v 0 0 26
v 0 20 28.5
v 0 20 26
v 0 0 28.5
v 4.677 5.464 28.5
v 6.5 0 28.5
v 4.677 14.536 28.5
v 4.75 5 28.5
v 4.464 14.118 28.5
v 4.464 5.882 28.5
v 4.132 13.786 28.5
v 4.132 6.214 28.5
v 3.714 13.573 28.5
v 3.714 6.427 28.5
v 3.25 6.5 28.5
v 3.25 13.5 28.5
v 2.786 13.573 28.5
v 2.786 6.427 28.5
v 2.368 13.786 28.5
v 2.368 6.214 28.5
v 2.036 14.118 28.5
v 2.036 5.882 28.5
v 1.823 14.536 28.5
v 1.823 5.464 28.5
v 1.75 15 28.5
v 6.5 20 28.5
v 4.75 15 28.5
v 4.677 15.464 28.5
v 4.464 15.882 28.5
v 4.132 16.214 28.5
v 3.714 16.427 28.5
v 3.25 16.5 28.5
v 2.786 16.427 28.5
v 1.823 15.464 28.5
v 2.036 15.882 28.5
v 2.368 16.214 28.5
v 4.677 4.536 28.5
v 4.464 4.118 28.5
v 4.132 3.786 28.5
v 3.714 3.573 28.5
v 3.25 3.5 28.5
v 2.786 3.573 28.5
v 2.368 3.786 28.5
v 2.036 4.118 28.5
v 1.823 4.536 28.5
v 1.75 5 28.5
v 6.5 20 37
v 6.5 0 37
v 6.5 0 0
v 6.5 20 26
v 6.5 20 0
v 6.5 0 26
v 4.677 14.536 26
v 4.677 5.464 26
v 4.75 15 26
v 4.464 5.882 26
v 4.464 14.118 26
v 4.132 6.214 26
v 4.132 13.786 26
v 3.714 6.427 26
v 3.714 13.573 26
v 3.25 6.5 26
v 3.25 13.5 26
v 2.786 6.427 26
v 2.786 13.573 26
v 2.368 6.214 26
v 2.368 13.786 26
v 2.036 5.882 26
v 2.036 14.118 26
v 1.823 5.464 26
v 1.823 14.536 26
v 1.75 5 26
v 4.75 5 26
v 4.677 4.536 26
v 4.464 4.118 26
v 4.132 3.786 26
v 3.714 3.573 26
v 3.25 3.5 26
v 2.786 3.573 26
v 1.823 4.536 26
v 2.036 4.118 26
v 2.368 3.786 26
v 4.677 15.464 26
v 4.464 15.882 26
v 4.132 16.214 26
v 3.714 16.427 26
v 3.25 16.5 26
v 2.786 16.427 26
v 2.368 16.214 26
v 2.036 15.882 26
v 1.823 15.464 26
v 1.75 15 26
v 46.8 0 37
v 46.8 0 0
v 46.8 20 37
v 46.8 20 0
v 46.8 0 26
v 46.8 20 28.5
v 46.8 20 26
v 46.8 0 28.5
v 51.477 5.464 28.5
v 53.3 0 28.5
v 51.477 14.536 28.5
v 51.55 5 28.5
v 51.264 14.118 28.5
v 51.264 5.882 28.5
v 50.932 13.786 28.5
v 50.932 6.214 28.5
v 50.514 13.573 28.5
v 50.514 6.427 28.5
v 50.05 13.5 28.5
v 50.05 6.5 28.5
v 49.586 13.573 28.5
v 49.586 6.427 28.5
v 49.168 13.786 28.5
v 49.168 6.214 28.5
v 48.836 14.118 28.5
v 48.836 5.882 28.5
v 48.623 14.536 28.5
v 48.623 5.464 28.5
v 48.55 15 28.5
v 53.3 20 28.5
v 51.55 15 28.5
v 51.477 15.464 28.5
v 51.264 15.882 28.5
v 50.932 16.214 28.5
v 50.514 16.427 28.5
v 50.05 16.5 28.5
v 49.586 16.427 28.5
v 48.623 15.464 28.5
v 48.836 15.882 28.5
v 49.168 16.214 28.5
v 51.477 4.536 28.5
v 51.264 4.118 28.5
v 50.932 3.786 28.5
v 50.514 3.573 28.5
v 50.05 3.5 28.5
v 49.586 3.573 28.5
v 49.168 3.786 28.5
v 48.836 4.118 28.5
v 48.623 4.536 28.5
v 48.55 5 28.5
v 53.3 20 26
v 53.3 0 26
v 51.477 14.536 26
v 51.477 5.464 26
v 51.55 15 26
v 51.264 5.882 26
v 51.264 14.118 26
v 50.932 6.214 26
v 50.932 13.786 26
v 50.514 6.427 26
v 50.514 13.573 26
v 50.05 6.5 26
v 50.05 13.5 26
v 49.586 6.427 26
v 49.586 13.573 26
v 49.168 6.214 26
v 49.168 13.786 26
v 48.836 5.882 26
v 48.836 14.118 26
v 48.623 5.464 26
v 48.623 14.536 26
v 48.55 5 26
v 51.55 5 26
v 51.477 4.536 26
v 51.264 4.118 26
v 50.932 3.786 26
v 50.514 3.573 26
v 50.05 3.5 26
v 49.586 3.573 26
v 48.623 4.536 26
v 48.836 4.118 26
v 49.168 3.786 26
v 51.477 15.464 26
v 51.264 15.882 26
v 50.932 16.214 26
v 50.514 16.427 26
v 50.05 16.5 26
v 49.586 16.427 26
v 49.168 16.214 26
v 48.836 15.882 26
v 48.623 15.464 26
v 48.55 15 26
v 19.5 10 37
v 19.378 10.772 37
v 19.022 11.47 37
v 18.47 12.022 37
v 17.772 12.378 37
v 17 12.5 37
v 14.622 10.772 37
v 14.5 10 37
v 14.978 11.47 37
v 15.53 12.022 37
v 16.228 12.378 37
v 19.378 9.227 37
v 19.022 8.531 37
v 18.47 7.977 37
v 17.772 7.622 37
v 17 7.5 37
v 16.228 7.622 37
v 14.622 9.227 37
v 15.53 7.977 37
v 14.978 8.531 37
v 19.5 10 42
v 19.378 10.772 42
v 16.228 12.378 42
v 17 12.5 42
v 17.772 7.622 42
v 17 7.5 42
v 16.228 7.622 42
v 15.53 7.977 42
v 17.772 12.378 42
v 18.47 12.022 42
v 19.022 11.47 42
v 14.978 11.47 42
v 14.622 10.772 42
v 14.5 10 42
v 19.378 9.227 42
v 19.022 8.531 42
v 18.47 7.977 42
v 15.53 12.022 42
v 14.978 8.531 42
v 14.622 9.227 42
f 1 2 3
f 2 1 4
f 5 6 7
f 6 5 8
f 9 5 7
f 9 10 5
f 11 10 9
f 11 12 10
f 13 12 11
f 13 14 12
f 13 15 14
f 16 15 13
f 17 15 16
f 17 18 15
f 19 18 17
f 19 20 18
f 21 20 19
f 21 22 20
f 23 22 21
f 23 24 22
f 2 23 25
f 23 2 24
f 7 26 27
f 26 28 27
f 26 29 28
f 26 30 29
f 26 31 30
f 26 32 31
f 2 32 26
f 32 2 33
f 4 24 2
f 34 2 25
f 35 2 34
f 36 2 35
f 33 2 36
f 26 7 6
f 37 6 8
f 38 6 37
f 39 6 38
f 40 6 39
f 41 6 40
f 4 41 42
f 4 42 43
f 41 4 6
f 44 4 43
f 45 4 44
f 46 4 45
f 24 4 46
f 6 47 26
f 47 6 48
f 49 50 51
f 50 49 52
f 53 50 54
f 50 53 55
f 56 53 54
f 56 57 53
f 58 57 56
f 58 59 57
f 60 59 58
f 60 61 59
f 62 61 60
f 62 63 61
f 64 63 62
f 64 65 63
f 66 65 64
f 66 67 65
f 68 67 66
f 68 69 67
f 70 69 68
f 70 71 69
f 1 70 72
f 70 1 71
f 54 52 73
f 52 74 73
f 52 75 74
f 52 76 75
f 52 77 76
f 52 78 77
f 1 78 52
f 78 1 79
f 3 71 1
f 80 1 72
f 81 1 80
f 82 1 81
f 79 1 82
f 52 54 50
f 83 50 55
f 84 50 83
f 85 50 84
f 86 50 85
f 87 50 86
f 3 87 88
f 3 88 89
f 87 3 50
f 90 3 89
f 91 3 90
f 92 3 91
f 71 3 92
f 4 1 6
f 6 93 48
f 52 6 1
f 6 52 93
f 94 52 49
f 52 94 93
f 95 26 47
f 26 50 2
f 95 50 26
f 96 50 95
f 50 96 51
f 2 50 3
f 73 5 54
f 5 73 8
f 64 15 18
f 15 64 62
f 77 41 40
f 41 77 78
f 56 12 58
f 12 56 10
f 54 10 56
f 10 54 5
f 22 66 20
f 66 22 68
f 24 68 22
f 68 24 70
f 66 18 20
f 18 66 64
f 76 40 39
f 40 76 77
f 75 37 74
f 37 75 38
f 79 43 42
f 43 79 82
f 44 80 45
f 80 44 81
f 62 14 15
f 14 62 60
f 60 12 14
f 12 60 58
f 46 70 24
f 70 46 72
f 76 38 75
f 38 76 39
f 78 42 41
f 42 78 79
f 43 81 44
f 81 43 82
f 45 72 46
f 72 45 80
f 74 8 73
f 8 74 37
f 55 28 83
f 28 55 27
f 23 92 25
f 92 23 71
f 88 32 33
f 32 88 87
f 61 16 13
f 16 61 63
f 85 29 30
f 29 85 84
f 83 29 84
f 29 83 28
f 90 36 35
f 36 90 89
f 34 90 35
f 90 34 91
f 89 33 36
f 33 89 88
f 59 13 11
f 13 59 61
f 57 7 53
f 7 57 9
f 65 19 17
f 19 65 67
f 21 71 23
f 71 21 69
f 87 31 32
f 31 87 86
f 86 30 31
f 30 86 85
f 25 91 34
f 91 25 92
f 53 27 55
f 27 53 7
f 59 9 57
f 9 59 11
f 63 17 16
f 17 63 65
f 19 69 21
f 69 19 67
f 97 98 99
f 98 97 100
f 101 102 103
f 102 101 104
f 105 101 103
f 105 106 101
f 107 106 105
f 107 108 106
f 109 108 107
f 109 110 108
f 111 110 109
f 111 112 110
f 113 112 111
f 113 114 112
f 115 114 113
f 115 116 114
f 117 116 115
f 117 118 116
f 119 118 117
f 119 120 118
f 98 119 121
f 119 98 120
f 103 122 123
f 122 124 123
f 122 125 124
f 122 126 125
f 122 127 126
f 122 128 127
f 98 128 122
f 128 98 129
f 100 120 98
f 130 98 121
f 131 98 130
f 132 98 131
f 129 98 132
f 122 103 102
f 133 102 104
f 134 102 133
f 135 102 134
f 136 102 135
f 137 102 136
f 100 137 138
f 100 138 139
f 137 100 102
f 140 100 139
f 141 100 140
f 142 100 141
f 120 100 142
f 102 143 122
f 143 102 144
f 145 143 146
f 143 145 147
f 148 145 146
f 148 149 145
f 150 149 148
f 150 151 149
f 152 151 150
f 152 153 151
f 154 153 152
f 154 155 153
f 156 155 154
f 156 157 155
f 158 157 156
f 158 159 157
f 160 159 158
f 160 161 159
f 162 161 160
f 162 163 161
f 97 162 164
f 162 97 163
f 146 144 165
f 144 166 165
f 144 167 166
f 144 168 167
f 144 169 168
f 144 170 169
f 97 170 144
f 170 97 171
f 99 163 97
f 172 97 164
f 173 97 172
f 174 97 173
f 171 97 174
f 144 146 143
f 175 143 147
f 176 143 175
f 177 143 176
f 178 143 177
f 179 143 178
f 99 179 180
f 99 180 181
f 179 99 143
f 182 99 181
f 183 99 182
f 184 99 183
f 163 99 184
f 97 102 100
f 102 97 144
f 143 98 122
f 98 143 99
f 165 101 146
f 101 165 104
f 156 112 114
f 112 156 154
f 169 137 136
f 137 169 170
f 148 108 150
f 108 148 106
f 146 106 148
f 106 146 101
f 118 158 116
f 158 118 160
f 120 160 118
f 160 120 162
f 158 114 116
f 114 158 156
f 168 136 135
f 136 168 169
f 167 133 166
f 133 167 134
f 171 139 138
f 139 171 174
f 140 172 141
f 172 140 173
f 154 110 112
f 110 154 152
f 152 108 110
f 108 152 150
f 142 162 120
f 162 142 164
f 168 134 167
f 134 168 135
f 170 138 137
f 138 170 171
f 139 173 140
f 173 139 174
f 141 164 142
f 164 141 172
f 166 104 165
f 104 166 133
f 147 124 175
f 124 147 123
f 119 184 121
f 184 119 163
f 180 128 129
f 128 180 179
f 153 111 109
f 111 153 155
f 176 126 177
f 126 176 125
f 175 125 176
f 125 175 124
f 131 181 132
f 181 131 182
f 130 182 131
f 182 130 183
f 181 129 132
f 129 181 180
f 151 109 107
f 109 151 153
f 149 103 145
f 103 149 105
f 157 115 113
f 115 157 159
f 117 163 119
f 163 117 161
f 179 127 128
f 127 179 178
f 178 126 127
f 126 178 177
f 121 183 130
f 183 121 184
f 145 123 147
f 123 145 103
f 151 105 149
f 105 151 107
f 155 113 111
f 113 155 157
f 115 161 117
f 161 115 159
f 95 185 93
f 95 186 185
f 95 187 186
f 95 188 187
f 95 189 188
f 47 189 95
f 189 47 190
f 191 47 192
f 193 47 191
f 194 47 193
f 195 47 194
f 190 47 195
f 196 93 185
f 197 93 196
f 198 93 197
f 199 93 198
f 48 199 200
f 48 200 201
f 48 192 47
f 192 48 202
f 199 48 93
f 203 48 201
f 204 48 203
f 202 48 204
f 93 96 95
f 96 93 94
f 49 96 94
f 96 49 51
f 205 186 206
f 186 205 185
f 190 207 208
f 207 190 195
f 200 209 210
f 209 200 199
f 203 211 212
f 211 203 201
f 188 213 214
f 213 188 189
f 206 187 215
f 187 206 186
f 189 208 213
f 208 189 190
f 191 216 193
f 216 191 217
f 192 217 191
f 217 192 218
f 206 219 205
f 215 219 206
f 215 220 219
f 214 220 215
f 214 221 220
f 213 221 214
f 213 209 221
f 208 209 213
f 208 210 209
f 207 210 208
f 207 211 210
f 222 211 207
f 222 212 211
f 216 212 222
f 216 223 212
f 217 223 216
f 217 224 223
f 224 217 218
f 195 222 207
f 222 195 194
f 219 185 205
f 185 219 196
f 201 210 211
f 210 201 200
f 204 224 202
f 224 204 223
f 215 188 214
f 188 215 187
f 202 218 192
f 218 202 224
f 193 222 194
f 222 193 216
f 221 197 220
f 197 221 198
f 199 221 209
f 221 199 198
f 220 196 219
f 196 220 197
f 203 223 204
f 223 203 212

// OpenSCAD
/********************
model of mg996r servo
*********************/

//dimensions of central box (excluding the pads)
//height is including the proruding neck around the shaft
length = 40.3;
width = 20;
height = 37;

//distance from nearest wall to the motor shaft
wall_to_shaft = 10.5;

//self explanatory measuremets
hole_length = 48;
hole_width = 10;
hole_diameter = 4;

//height is from ground to bottom of pad
pad_height = 26;
//self explanatory
pad_thick = 2.5;
pad_length = 6.5;

//convexity of holes
$fn = 20;

module pad(){
    difference(){
        cube([pad_length, width, pad_thick]);
        translate([pad_length/2, width/2-hole_width/2, 0])
        cylinder(d=3,h=pad_thick);
        translate([pad_length/2, width/2+hole_width/2, 0])
        cylinder(d=3,h=pad_thick);
    }
}

module servo(){
    translate([0,0,pad_height])
    pad();
    translate([pad_length+length,0,pad_height])
    pad();
    translate([pad_length, 0, 0])
    cube([length, width, height]);
    translate([pad_length + wall_to_shaft, width/2, height])
    cylinder(h=5,d=5);
}

color([0,1,0])
servo();
